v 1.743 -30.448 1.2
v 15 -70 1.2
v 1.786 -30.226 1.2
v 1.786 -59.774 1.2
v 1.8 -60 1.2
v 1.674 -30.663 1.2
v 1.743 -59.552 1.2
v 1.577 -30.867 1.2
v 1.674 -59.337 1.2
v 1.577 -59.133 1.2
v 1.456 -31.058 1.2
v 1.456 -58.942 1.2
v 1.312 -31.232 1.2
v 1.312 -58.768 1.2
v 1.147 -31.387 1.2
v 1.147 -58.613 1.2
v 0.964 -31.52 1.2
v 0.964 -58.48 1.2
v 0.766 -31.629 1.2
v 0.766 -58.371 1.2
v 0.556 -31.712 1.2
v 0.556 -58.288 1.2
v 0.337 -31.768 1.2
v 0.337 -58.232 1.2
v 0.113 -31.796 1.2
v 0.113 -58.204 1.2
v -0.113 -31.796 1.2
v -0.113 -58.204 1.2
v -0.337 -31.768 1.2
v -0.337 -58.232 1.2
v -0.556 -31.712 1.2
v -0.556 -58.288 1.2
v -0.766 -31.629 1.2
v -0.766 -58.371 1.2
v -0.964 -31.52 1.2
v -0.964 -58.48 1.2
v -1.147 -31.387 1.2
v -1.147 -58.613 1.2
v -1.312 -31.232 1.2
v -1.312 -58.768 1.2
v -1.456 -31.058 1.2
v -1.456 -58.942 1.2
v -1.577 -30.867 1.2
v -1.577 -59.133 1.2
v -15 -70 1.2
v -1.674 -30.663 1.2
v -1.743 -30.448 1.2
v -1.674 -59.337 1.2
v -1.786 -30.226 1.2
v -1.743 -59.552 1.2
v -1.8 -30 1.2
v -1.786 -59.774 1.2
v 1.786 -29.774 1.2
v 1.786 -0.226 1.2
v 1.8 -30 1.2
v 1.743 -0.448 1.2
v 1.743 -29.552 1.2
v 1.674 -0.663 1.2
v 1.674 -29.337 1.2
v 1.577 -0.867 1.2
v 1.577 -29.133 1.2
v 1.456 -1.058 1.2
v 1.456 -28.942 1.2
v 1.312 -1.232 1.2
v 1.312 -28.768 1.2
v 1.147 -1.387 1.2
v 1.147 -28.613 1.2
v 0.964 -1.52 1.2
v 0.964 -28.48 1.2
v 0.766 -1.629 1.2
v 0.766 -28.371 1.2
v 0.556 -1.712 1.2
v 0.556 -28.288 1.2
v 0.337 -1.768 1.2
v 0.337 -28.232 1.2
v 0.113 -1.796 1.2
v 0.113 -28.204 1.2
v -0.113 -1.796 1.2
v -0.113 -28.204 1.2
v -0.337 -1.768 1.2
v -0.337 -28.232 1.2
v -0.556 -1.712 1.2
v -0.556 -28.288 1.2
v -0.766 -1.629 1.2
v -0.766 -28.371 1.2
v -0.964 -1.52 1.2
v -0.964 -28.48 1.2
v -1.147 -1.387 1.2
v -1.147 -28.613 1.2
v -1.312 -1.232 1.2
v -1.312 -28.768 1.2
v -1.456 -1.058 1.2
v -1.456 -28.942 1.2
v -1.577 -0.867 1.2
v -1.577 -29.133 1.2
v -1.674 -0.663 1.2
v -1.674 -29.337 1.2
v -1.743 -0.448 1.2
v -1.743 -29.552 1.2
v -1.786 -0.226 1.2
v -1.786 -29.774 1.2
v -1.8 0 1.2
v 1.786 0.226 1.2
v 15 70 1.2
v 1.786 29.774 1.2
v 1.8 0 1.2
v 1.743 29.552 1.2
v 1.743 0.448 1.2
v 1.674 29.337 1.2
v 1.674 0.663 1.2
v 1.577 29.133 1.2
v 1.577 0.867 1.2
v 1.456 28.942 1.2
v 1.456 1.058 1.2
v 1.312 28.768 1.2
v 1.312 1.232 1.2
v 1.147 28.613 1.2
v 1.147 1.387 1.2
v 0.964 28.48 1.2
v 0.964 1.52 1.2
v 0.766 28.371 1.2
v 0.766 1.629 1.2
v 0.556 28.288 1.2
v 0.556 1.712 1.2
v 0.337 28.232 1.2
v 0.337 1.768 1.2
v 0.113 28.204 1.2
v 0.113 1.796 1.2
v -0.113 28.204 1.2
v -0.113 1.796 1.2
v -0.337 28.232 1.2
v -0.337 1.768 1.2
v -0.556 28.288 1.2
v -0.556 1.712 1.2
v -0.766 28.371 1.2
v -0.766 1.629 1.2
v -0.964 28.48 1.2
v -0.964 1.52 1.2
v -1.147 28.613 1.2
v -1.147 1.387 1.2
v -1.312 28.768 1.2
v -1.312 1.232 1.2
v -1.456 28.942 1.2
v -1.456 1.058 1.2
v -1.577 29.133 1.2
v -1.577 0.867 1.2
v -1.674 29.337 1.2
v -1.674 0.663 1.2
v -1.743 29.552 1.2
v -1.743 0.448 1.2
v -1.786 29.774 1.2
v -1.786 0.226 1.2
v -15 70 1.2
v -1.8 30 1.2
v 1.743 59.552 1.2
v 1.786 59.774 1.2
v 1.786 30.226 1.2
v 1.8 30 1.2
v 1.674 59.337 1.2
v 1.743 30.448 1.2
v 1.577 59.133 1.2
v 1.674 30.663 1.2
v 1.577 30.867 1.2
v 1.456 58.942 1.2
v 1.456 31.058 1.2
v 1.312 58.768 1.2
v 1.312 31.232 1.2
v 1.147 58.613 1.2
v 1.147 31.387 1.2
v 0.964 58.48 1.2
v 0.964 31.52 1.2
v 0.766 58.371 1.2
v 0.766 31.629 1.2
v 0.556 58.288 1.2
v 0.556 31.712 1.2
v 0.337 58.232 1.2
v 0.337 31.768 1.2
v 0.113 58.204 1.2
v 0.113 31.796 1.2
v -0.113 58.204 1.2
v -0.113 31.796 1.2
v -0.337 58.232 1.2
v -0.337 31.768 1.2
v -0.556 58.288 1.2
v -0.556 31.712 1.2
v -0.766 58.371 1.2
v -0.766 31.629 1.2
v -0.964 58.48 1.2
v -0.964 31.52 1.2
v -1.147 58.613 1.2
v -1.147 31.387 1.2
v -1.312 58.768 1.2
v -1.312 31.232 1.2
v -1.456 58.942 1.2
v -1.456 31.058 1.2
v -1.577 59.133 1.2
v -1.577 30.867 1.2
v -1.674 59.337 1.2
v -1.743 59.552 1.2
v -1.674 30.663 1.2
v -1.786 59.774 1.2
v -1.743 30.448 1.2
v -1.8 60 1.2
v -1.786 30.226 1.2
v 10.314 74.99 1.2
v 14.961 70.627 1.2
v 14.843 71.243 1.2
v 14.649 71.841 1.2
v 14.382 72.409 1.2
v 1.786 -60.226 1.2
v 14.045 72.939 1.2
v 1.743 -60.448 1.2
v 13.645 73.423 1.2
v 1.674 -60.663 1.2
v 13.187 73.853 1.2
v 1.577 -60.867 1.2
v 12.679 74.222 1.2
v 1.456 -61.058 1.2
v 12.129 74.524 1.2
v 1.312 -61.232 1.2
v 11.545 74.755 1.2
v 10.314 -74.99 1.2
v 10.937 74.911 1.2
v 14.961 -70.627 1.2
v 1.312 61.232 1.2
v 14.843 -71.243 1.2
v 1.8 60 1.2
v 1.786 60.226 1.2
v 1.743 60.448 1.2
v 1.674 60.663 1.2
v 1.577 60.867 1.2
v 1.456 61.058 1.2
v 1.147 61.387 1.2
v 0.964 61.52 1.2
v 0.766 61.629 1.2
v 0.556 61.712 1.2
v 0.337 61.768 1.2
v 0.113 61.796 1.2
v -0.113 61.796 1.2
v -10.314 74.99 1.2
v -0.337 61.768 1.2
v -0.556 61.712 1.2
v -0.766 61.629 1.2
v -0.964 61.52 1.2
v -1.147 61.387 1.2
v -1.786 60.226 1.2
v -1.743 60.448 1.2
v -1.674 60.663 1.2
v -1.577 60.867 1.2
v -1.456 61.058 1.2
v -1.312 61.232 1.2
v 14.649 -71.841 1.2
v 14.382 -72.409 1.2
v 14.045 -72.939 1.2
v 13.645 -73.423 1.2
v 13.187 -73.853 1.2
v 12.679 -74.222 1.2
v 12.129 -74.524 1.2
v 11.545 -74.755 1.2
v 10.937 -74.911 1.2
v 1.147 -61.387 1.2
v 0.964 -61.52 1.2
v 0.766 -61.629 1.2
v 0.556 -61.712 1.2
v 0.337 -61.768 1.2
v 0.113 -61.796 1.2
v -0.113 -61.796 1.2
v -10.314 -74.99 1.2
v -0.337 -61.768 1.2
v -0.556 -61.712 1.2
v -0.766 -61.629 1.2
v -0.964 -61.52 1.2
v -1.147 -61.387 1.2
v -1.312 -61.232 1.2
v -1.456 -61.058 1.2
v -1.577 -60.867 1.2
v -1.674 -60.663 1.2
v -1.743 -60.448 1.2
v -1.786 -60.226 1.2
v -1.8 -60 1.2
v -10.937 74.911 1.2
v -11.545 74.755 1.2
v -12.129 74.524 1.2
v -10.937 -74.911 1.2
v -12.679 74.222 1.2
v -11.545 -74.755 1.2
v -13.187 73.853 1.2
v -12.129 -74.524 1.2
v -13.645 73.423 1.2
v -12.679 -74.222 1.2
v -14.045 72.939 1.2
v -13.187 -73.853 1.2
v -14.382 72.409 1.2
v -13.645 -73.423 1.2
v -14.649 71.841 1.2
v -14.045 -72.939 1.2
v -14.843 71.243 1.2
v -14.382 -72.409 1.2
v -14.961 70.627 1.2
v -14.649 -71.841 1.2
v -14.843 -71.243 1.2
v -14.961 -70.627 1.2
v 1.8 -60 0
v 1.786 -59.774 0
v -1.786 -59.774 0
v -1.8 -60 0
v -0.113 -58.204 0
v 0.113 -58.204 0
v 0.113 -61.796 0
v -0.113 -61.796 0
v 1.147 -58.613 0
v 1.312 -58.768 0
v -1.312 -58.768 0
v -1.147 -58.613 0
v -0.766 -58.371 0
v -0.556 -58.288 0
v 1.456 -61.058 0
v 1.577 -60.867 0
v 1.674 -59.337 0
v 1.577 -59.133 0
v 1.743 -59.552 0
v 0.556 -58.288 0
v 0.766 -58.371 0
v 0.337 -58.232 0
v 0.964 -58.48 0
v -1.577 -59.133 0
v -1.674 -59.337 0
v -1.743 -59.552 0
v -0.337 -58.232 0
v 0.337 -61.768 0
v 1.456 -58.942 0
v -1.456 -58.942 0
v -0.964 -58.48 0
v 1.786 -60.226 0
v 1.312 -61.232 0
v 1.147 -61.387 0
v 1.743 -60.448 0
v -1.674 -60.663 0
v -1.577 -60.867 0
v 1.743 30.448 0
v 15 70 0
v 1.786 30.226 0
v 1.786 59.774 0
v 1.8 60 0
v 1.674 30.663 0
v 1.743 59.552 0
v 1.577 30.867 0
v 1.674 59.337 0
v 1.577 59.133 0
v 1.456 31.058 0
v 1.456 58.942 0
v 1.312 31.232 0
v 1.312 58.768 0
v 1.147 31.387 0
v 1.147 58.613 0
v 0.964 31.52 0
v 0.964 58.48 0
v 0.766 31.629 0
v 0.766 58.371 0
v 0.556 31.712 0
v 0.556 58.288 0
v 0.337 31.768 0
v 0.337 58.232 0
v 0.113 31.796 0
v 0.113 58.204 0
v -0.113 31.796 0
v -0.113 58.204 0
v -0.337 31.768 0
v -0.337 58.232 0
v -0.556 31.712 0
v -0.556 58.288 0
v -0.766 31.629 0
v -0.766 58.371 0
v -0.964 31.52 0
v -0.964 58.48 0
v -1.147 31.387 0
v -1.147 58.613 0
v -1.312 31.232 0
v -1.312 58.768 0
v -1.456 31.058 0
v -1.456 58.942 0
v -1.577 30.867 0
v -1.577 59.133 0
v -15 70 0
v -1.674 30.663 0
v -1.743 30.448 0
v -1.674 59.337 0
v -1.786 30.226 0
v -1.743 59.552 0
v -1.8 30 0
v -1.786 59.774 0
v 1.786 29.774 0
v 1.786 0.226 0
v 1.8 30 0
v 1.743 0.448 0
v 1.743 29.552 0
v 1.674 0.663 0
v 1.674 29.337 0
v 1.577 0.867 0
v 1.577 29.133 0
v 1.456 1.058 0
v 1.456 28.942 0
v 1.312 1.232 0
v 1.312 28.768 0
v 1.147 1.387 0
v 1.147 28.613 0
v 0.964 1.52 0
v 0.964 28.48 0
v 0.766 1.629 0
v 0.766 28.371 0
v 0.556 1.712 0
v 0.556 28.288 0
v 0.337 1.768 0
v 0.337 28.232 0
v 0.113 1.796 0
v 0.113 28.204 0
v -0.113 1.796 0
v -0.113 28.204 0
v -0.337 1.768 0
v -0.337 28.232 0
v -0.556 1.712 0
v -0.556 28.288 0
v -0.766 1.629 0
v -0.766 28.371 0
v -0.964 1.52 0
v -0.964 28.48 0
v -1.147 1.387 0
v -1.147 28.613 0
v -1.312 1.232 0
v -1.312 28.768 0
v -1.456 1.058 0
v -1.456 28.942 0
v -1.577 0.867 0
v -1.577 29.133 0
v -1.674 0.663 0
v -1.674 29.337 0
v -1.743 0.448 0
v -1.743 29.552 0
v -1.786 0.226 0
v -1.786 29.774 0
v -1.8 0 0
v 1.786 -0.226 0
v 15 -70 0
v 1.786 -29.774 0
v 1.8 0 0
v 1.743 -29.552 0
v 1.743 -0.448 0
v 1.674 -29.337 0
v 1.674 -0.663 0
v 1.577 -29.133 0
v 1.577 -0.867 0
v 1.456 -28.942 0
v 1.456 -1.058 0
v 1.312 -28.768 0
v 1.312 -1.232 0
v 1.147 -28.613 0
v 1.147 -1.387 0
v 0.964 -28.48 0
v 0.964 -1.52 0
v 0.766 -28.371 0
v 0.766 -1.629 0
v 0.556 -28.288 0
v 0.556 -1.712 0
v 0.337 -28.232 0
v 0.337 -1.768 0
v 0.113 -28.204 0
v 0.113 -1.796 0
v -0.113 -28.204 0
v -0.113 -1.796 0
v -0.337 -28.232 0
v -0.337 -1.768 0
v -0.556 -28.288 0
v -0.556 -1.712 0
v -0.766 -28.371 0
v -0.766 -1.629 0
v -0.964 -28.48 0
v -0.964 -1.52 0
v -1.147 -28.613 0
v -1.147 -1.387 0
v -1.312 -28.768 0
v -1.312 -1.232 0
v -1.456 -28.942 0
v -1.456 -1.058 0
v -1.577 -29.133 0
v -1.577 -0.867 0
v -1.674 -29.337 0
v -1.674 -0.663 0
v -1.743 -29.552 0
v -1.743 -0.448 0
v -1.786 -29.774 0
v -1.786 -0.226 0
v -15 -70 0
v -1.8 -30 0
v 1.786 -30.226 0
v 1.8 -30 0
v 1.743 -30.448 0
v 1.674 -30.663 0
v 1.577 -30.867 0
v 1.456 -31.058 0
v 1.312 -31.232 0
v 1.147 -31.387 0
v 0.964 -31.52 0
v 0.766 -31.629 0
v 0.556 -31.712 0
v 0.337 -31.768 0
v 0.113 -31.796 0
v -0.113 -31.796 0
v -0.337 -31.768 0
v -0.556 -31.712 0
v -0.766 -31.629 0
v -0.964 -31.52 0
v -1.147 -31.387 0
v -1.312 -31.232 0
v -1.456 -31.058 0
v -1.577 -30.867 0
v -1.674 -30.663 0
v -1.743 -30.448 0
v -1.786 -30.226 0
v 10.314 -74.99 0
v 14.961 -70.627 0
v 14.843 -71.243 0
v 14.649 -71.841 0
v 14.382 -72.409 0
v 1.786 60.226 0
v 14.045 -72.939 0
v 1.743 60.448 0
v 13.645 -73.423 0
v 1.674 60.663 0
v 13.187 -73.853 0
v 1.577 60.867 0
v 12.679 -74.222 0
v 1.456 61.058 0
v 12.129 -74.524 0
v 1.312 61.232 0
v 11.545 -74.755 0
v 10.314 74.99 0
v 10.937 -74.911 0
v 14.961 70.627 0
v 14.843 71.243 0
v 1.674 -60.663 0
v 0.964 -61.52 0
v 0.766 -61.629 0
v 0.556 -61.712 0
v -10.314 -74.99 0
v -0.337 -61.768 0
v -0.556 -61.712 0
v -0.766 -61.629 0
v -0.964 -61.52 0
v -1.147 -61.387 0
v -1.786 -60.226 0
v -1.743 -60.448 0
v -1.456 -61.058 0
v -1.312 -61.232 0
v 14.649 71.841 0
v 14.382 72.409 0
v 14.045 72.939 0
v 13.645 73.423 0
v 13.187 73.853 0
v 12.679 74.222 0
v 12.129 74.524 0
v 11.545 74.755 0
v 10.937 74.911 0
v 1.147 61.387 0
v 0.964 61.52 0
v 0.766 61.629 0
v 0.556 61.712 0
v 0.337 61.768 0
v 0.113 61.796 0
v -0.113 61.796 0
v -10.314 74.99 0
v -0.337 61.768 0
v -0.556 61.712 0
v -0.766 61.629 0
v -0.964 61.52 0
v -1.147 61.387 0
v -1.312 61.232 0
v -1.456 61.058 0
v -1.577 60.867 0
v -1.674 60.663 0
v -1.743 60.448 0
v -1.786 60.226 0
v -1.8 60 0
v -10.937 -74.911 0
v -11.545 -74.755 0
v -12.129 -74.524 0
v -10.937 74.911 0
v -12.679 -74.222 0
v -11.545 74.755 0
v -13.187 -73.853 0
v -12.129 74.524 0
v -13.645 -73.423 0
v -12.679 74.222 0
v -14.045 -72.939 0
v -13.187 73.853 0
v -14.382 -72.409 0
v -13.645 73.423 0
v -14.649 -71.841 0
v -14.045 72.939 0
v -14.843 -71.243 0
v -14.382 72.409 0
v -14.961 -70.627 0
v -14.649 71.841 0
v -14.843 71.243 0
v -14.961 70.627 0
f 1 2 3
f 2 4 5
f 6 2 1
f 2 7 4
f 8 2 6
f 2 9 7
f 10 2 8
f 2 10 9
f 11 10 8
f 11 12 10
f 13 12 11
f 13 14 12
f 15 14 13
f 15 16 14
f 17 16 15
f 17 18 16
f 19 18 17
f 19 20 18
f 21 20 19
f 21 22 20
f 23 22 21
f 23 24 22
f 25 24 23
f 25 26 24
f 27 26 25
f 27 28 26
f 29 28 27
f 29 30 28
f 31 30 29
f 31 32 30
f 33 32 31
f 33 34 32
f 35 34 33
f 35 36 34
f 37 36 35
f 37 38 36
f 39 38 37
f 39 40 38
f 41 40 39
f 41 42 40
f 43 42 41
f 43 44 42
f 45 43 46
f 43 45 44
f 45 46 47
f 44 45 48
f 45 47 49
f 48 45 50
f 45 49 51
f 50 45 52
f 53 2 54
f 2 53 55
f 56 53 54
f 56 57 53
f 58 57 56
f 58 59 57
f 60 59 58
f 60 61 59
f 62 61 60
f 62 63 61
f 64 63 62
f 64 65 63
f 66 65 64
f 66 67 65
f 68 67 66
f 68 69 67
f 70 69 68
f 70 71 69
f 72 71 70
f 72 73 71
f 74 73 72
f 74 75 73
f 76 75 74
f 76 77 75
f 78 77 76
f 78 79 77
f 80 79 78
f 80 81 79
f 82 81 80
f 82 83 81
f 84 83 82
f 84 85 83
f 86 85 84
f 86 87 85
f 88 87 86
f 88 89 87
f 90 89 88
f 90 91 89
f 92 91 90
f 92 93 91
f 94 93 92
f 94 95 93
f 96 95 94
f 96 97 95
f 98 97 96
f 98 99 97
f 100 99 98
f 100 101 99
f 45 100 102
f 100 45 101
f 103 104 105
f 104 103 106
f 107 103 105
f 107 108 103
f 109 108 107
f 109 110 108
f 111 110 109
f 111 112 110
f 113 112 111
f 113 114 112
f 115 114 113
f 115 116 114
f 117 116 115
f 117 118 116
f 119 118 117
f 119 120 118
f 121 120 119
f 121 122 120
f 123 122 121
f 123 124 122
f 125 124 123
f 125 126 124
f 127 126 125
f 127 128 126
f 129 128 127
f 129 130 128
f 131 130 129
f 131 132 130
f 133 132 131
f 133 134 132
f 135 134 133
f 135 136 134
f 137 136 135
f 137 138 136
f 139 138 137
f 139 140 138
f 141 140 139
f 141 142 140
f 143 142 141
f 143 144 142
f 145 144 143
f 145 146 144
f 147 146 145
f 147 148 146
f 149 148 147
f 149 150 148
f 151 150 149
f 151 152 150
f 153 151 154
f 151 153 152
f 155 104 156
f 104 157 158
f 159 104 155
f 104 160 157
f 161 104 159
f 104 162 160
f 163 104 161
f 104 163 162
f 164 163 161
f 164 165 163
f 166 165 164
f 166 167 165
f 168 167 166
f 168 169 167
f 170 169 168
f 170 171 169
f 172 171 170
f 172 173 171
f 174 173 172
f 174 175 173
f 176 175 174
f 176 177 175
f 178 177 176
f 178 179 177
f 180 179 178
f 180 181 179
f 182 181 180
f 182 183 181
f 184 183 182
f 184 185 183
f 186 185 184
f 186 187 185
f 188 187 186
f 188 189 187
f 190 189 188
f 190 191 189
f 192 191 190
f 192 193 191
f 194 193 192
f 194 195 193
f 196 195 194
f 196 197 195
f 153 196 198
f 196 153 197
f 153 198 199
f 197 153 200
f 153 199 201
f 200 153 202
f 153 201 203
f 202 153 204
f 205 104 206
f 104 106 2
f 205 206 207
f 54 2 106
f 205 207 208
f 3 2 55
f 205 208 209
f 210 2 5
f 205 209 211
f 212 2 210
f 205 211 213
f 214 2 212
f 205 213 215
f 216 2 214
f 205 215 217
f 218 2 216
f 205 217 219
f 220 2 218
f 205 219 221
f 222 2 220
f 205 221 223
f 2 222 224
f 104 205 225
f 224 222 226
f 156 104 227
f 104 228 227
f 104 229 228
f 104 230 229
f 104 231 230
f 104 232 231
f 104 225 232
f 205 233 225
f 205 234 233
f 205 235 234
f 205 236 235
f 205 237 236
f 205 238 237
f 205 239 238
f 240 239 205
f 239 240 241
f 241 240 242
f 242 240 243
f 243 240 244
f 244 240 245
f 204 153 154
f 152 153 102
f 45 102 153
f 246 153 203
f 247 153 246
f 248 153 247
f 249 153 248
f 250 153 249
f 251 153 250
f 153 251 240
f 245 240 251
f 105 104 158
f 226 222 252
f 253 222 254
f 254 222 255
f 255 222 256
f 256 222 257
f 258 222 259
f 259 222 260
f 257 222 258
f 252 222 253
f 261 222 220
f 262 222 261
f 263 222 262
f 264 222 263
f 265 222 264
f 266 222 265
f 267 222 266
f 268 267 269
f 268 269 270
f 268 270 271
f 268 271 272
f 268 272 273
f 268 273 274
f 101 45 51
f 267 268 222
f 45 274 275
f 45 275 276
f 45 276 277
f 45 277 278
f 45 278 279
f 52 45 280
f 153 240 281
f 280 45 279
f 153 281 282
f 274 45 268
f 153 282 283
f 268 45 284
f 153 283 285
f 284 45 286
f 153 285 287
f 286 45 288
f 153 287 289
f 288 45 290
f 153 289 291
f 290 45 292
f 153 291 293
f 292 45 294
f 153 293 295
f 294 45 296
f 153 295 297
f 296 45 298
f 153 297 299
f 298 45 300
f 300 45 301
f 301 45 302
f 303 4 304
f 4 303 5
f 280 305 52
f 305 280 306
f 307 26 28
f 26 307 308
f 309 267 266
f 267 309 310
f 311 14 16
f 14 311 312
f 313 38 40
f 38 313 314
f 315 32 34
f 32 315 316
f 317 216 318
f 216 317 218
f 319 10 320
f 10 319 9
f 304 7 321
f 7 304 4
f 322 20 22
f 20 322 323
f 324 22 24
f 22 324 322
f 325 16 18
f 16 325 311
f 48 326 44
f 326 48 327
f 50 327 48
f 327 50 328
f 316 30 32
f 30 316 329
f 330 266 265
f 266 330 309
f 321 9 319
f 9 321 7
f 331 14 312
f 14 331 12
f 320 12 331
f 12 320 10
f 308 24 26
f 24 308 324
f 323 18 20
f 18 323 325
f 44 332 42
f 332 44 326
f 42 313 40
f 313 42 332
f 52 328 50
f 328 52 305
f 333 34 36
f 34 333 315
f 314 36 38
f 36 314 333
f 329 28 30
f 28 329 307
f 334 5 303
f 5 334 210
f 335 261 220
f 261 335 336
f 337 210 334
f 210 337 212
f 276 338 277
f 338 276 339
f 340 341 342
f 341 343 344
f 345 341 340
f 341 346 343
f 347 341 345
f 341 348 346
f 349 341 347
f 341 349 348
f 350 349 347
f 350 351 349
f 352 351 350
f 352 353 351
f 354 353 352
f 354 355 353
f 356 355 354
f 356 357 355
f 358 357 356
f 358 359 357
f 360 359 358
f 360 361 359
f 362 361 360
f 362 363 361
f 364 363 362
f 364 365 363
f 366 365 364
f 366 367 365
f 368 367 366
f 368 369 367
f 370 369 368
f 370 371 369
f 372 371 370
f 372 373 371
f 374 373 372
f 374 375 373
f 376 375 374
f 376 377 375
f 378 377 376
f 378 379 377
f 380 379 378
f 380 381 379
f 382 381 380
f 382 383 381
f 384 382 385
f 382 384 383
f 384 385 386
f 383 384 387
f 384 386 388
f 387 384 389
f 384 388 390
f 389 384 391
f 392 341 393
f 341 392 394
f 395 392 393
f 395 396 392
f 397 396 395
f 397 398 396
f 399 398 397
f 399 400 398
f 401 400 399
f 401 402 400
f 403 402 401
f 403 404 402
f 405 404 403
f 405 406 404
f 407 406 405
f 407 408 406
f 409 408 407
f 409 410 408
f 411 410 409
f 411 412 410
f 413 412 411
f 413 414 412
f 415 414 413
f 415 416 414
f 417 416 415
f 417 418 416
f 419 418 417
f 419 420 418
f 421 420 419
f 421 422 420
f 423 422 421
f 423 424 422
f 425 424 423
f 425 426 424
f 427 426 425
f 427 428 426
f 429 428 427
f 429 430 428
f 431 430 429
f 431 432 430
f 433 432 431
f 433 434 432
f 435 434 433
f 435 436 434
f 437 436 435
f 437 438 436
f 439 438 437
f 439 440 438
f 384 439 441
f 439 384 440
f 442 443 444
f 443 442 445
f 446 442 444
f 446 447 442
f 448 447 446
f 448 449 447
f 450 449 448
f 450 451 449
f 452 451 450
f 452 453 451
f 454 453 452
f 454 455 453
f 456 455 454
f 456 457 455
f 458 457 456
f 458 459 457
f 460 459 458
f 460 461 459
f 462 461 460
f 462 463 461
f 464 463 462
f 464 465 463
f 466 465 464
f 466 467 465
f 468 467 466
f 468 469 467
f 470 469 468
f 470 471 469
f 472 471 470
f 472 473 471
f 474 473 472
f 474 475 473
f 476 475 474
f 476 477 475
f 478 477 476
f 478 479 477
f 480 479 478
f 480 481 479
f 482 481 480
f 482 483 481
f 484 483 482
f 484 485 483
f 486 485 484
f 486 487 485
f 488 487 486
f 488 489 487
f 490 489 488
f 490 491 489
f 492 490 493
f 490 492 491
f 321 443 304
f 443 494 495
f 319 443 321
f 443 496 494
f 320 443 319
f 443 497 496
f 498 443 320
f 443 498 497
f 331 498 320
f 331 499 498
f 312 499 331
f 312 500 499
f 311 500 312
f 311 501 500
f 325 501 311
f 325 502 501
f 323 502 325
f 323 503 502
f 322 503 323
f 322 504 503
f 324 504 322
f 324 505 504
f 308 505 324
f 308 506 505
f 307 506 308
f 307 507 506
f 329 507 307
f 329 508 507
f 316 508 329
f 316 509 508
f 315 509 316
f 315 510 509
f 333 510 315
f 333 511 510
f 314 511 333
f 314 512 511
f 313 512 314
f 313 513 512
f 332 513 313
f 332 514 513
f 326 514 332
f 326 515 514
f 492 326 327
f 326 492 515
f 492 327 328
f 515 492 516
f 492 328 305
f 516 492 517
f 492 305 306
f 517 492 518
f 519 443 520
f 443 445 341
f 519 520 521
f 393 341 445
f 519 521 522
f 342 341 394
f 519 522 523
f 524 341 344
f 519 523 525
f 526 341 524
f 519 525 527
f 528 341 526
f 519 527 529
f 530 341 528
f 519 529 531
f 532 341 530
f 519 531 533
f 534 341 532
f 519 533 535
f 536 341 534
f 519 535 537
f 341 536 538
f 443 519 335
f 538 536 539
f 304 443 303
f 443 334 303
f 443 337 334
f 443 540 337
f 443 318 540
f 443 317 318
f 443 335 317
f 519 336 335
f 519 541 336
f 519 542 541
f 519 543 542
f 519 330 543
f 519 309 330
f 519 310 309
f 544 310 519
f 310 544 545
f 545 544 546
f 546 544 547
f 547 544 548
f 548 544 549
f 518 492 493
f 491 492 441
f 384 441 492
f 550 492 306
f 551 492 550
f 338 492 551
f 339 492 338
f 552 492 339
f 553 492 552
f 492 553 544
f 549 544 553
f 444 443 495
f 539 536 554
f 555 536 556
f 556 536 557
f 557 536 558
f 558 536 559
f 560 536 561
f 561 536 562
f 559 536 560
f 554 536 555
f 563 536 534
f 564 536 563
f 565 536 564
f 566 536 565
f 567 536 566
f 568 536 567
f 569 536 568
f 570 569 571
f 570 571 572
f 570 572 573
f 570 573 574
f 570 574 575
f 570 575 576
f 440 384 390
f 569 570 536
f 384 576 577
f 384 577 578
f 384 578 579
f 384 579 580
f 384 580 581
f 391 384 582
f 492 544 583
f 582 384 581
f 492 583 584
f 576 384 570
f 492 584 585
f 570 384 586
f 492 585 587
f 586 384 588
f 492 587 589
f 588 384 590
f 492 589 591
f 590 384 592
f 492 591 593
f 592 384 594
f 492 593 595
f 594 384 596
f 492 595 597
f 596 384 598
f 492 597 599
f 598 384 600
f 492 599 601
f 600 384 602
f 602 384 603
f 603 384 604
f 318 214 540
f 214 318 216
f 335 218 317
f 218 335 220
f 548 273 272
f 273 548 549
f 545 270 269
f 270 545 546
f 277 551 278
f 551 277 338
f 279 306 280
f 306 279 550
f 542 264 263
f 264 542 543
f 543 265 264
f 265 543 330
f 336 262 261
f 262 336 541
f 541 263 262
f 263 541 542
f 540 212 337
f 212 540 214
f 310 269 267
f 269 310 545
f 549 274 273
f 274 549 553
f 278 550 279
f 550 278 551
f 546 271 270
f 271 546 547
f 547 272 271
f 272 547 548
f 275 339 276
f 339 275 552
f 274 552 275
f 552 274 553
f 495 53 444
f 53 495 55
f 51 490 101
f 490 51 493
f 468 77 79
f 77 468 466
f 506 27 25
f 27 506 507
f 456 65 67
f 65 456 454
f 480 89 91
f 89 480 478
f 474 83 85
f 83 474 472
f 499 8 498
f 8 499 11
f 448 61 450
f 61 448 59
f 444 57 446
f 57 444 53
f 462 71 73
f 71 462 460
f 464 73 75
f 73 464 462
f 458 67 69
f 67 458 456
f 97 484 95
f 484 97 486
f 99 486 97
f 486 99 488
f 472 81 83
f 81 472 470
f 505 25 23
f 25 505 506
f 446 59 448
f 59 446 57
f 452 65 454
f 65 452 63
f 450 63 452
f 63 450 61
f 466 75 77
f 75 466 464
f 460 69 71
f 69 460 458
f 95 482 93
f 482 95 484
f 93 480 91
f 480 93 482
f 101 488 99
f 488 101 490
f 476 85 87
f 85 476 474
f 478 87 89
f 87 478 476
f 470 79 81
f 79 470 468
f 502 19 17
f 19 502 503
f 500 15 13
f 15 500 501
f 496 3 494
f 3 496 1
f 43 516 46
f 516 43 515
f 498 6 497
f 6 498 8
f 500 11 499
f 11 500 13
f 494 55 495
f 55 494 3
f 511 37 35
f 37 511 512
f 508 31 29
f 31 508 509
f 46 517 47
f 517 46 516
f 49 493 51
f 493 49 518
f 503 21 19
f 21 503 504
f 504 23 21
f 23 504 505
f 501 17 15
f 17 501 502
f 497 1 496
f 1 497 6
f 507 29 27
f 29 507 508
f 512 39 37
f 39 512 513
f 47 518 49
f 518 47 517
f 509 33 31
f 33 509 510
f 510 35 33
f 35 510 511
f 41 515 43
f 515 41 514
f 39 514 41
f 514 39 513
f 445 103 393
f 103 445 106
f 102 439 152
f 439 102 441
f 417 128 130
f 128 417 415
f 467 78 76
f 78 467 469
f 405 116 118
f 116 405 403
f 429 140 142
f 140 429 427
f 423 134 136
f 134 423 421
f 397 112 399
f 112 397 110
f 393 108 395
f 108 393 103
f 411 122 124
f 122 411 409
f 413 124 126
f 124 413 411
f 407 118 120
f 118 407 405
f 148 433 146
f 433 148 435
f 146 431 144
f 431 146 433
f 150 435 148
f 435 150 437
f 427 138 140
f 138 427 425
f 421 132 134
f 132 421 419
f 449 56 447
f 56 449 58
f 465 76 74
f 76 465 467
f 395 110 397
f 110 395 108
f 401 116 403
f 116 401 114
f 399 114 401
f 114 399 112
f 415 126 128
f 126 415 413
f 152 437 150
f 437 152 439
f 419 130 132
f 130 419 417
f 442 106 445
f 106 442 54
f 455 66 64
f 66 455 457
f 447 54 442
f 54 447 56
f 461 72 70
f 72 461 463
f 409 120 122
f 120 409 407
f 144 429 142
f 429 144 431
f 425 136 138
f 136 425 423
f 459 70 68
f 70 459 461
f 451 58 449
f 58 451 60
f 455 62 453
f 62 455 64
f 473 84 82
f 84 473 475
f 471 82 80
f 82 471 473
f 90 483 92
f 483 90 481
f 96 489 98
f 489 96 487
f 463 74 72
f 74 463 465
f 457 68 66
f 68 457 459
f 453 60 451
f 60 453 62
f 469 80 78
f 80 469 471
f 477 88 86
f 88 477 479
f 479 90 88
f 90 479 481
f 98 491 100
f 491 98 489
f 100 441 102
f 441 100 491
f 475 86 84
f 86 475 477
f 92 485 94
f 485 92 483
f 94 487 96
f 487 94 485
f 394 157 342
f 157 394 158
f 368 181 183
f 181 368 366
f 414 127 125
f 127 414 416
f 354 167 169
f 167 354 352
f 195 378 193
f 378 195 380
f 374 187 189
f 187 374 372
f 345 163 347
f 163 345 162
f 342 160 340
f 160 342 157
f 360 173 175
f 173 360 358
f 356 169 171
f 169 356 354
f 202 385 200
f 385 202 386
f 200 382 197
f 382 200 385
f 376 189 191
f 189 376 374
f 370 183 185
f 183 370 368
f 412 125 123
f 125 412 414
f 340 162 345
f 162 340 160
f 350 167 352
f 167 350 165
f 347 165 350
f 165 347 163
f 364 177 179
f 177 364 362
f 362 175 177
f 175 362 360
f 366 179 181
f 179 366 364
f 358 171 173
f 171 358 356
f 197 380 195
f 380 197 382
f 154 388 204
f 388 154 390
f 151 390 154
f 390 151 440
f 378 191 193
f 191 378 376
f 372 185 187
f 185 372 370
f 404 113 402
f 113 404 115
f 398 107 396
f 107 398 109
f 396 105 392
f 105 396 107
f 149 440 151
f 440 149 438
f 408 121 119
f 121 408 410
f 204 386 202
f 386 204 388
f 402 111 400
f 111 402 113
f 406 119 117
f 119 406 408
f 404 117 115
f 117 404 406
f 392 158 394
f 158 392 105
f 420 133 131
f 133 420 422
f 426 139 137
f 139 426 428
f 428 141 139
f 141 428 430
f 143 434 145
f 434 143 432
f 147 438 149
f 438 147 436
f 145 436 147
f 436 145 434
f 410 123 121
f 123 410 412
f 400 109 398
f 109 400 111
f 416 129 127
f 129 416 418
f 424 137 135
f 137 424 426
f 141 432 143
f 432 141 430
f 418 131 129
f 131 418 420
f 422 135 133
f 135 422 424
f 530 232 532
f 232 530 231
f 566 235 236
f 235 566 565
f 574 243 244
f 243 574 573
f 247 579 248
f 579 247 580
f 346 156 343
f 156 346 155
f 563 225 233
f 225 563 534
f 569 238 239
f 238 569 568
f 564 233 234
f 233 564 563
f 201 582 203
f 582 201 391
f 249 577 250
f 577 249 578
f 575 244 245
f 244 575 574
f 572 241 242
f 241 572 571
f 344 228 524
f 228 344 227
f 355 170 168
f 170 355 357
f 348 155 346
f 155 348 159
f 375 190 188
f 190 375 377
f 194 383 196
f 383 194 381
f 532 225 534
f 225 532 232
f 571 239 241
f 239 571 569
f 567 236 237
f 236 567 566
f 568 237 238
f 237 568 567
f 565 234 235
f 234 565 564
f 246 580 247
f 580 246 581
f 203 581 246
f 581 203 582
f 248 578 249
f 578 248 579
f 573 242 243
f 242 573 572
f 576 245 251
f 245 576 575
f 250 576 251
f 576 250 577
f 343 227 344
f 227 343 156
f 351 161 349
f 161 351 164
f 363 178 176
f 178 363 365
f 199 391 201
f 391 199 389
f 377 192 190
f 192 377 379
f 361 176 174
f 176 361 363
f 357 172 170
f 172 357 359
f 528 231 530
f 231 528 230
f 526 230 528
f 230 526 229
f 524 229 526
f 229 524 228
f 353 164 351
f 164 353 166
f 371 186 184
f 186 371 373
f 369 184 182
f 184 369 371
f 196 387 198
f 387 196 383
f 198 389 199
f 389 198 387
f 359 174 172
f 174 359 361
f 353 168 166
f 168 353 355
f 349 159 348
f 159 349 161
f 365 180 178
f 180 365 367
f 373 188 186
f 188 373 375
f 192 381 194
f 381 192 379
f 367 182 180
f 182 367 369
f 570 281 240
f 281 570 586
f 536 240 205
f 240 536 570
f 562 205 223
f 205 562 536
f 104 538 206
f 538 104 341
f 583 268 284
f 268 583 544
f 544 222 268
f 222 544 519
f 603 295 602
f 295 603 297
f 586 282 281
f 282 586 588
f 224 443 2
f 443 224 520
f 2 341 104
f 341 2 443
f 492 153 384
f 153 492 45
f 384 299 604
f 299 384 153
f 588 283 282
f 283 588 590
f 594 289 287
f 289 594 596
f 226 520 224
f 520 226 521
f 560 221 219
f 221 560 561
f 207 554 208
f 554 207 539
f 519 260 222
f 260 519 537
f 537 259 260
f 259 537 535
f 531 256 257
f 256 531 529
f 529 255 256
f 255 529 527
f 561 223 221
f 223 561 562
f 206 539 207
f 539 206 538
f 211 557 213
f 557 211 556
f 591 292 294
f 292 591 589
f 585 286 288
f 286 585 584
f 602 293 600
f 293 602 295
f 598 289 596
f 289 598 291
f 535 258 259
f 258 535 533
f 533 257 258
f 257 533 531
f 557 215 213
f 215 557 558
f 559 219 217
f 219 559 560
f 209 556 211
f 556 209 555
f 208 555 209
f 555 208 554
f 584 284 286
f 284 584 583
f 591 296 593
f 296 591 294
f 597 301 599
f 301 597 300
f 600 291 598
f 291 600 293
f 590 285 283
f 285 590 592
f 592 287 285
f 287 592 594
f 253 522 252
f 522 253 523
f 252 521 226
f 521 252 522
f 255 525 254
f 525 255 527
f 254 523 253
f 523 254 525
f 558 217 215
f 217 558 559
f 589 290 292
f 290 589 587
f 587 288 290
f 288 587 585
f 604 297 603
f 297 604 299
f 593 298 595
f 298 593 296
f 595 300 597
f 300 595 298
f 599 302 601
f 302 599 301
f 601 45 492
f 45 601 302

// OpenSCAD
$fn = 50;


difference() {
	union() {
		hull() {
			translate(v = [-10.0000000000, 70.0000000000, 0]) {
				cylinder(h = 15, r = 5);
			}
			translate(v = [10.0000000000, 70.0000000000, 0]) {
				cylinder(h = 15, r = 5);
			}
			translate(v = [-10.0000000000, -70.0000000000, 0]) {
				cylinder(h = 15, r = 5);
			}
			translate(v = [10.0000000000, -70.0000000000, 0]) {
				cylinder(h = 15, r = 5);
			}
		}
	}
	union() {
		translate(v = [0, 0, 1.2000000000]) {
			hull() {
				translate(v = [-10.0000000000, 70.0000000000, 0]) {
					cylinder(h = 13.8000000000, r = 3.8000000000);
				}
				translate(v = [10.0000000000, 70.0000000000, 0]) {
					cylinder(h = 13.8000000000, r = 3.8000000000);
				}
				translate(v = [-10.0000000000, -70.0000000000, 0]) {
					cylinder(h = 13.8000000000, r = 3.8000000000);
				}
				translate(v = [10.0000000000, -70.0000000000, 0]) {
					cylinder(h = 13.8000000000, r = 3.8000000000);
				}
			}
		}
		#translate(v = [0.0000000000, -60.0000000000, 0]) {
			cylinder(h = 1.2000000000, r = 1.8000000000);
		}
		#translate(v = [0.0000000000, -30.0000000000, 0]) {
			cylinder(h = 1.2000000000, r = 1.8000000000);
		}
		#cylinder(h = 1.2000000000, r = 1.8000000000);
		#translate(v = [0.0000000000, 30.0000000000, 0]) {
			cylinder(h = 1.2000000000, r = 1.8000000000);
		}
		#translate(v = [0.0000000000, 60.0000000000, 0]) {
			cylinder(h = 1.2000000000, r = 1.8000000000);
		}
		translate(v = [-250.0000000000, -250.0000000000, 1.2000000000]) {
			cube(size = [500, 500, 500]);
		}
		translate(v = [-250.0000000000, -250.0000000000, 1.2000000000]) {
			cube(size = [500, 500, 500]);
		}
		translate(v = [-250.0000000000, -250.0000000000, 1.2000000000]) {
			cube(size = [500, 500, 500]);
		}
	}
}
